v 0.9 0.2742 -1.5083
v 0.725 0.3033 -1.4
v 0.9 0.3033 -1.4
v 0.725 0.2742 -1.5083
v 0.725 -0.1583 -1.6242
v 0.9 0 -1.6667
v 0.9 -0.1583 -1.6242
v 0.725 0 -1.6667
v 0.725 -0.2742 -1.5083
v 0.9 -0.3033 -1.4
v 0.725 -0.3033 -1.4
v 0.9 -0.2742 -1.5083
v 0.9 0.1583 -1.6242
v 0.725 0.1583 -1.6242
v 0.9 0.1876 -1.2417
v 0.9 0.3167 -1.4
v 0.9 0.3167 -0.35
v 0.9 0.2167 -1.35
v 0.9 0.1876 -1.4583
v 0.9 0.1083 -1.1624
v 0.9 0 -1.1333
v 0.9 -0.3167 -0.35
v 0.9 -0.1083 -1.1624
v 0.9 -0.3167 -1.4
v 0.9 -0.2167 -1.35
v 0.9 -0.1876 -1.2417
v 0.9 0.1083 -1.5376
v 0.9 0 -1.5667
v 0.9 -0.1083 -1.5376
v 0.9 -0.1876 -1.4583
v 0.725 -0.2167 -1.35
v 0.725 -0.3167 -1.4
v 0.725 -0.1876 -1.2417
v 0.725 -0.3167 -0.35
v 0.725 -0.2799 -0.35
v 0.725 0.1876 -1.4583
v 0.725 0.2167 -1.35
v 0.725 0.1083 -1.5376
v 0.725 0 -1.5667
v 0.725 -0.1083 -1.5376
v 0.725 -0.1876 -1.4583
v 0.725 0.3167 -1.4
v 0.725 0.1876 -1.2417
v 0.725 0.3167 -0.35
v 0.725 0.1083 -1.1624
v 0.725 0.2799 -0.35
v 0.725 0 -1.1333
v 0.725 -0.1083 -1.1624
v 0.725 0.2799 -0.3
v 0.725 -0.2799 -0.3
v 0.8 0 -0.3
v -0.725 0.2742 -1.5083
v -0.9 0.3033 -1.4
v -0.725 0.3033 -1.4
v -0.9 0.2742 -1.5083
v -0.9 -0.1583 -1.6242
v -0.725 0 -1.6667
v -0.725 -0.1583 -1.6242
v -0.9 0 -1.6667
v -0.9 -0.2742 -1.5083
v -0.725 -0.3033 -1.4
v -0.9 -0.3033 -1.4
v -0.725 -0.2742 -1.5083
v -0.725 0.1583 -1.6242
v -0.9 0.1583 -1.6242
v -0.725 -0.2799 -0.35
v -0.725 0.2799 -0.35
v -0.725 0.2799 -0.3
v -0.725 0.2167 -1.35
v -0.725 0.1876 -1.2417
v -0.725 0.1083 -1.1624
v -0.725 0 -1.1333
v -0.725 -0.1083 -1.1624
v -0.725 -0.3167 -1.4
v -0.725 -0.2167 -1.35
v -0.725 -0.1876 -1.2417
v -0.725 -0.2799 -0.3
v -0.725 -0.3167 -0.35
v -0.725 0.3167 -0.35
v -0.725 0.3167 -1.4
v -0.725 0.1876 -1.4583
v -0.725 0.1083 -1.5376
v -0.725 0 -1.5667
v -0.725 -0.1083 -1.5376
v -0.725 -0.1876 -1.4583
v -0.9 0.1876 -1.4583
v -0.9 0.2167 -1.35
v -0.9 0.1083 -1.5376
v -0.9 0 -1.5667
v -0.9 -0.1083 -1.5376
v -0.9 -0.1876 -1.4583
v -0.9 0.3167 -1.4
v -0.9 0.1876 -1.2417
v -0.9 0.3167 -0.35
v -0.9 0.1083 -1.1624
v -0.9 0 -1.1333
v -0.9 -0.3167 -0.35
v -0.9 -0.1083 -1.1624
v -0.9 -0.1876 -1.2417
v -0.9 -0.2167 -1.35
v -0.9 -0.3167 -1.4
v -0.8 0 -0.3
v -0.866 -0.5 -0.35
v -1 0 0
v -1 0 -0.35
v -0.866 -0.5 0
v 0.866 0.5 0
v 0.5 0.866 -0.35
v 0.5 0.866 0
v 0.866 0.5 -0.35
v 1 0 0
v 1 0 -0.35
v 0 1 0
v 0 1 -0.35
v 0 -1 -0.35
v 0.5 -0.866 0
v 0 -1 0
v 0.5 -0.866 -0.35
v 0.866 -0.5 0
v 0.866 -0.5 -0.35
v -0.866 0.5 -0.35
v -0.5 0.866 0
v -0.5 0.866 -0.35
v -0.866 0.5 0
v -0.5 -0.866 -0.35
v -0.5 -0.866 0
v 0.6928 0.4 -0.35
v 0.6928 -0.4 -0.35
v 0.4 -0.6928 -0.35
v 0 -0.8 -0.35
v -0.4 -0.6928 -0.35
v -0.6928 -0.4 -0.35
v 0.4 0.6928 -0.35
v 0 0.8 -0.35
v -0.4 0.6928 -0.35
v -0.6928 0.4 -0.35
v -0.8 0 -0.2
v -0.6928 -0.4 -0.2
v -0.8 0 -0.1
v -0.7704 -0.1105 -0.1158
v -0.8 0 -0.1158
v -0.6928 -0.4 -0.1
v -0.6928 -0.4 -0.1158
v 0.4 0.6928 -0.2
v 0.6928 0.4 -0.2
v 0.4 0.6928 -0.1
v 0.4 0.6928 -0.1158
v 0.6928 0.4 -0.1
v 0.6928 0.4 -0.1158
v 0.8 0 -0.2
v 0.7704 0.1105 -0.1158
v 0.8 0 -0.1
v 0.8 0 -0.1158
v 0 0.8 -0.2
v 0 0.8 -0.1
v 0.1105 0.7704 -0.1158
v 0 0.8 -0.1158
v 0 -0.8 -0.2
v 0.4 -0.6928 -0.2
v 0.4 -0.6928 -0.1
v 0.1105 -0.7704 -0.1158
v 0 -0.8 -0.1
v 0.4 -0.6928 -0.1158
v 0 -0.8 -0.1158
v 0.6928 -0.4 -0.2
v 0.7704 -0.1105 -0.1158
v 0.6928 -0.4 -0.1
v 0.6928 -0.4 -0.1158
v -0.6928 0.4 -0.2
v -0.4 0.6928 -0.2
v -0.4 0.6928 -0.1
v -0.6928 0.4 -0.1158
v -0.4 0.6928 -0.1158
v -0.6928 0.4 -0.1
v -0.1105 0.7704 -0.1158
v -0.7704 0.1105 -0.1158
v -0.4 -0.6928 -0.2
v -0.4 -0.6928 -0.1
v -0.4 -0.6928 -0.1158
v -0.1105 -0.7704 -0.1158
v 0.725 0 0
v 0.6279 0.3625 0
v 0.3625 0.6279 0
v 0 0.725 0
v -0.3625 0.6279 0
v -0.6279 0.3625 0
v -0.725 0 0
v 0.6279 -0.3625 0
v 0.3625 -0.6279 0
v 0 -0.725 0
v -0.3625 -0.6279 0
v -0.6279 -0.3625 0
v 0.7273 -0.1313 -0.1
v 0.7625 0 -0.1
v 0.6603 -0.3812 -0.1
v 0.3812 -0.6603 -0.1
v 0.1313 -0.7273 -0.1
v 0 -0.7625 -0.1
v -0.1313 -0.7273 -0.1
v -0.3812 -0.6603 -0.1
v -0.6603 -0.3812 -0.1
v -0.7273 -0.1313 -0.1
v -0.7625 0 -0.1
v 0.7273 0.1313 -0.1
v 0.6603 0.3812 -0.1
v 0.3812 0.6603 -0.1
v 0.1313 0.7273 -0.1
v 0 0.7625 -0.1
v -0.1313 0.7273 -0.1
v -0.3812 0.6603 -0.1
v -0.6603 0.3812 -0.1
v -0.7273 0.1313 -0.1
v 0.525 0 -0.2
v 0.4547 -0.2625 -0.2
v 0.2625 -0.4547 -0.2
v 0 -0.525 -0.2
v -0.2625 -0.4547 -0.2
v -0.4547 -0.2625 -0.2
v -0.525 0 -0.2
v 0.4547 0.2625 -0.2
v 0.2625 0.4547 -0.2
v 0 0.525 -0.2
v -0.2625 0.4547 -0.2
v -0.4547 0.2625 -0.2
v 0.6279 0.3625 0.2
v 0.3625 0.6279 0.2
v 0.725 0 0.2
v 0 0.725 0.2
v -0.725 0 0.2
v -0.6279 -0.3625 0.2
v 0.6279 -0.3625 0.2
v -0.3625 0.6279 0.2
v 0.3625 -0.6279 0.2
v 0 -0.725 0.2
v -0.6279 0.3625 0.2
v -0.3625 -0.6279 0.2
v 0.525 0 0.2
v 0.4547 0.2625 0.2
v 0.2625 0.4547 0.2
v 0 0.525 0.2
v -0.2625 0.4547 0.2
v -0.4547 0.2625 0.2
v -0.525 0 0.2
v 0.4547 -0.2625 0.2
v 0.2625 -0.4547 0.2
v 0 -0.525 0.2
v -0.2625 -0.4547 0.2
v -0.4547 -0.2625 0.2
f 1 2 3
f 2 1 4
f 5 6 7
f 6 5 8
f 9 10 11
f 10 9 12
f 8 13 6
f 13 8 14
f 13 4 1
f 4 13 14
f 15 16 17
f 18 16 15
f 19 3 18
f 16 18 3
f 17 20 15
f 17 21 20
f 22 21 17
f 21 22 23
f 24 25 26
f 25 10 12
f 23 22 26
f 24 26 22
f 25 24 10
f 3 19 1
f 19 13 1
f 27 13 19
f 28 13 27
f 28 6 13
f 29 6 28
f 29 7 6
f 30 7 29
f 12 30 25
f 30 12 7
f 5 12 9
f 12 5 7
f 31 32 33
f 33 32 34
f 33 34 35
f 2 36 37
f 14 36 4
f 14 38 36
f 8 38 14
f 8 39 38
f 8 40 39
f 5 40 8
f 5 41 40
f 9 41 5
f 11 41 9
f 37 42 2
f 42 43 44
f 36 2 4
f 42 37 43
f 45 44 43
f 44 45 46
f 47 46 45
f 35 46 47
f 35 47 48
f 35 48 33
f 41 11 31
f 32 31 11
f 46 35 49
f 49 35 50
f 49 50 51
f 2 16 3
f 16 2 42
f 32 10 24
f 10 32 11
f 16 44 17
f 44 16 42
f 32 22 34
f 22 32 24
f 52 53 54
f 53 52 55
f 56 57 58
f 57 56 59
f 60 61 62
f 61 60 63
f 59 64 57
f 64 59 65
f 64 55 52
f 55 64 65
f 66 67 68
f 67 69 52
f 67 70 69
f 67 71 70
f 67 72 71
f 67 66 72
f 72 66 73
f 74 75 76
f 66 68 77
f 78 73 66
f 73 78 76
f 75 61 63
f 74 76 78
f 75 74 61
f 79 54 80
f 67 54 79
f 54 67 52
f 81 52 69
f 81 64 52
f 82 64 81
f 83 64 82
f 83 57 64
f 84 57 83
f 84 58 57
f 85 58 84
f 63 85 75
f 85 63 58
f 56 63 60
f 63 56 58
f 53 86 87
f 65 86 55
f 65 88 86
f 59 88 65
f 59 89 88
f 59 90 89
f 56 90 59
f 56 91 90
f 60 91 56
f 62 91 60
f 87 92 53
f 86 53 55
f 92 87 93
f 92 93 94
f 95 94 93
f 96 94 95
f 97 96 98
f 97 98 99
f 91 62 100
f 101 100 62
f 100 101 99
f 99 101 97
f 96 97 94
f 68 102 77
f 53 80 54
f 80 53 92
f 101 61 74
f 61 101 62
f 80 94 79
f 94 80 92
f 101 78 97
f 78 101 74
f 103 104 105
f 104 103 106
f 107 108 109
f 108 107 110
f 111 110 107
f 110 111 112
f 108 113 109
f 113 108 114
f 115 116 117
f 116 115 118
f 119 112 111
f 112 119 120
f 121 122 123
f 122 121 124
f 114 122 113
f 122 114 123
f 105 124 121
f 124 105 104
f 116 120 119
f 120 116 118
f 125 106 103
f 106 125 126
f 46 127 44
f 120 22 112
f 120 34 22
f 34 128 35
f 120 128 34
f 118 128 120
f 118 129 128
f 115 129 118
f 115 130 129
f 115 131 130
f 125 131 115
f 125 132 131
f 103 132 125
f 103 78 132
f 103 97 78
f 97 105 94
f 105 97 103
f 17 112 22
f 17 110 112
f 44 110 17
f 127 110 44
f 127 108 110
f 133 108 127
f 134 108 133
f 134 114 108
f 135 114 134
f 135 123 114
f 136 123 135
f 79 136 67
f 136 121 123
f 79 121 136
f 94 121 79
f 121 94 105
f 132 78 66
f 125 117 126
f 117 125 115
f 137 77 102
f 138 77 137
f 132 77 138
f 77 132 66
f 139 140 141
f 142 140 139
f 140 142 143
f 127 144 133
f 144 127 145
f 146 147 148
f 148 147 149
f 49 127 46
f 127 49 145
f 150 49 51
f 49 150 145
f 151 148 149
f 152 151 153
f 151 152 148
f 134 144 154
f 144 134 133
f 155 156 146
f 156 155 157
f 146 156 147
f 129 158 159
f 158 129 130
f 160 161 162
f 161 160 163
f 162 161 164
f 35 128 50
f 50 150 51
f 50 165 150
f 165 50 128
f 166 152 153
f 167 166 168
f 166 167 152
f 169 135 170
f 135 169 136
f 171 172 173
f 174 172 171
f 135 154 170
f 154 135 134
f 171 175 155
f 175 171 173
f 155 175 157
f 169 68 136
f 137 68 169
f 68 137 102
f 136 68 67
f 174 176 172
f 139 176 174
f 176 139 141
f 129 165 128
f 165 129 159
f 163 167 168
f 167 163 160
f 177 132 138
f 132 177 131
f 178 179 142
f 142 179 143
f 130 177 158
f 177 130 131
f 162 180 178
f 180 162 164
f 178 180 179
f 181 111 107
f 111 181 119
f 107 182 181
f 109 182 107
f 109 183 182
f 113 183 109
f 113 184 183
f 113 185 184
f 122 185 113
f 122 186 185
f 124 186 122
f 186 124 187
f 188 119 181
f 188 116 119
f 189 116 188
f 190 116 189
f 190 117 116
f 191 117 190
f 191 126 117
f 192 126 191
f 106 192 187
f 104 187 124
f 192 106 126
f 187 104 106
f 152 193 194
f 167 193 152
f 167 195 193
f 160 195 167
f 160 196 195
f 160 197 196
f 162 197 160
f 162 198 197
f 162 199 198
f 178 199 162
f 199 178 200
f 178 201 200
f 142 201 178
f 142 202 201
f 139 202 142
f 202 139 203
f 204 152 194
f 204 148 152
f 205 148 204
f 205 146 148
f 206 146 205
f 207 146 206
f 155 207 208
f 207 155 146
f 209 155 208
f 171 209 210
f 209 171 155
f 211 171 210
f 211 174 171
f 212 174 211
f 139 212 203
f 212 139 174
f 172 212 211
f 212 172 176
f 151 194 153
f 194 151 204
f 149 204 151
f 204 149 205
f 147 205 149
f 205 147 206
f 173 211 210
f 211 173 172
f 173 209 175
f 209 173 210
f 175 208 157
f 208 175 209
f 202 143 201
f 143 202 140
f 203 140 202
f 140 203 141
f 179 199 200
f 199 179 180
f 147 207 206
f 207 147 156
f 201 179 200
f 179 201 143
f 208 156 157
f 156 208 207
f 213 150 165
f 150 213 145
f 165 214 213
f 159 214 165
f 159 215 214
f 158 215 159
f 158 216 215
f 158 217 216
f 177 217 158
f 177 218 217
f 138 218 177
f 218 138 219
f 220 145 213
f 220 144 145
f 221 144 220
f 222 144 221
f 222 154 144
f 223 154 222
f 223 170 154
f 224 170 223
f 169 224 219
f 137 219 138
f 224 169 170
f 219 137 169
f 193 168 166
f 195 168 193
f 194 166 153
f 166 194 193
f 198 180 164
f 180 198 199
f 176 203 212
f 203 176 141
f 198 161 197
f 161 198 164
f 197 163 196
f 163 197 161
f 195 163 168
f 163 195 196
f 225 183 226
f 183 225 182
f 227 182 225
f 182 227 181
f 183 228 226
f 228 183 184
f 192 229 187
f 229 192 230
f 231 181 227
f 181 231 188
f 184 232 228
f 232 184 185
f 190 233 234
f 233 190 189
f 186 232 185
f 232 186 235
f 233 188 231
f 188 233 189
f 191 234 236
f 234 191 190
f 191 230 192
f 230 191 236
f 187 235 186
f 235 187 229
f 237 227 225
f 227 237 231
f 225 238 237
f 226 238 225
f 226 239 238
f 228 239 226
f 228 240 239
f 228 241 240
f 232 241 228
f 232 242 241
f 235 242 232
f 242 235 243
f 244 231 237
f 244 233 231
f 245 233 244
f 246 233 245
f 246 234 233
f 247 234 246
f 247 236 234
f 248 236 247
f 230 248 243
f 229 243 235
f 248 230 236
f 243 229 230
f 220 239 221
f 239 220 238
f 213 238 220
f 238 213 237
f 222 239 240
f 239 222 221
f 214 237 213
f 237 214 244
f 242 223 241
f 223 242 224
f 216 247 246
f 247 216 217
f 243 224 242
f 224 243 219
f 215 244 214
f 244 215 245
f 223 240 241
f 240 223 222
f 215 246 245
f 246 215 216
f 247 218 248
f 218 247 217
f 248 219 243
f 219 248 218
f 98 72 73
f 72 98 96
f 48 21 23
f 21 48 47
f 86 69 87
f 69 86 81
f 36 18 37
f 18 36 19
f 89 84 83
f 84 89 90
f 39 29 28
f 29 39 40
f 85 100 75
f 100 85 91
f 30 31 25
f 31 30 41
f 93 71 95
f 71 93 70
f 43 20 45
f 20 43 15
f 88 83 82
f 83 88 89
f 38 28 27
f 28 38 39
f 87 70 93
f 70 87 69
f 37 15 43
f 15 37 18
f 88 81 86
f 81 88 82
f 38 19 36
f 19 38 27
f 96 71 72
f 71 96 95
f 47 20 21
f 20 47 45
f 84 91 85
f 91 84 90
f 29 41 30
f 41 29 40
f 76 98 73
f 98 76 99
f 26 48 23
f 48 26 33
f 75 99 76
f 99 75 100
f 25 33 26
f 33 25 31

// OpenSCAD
tolerance=0.075;
hole_radius=0.05;
grid_hole_radius=0.05;
outer_radius=1;
thickness=0.2;
hole_attach_height=0.05;
attach_thickness=0.1;
bottom_rotation_height=1.625;
top_rotation_height=1.35;
next_hole_radius=0.05;
next_hole_attach_height=0.05;
next_inner=0.8;
max_turn=90.0;
min_turn=90.0;
hole_twist=90.0;

//parameters that don't have to be defined explicitly
eps = tolerance/100;
inner_radius = outer_radius - thickness;
axle_offset = attach_thickness;
bottom_joint_attach_radius = outer_radius - hole_attach_height - grid_hole_radius*2 - thickness;
fn = 12;
fnh = 6;

//solve for b = axle height
max_turn_b = outer_radius / tan((180 - max_turn)/2);
min_turn_b = outer_radius / tan((180 - min_turn)/2);
axle_radius = bottom_joint_attach_radius/3;

grid_hole_height = hole_radius*2 + hole_attach_height * 2;
bottom_joint_grid_clearance = bottom_rotation_height - (hole_attach_height*2 + hole_radius*2 + grid_hole_height + max_turn_b + attach_thickness);

module angled_cylinder(angle_deg_y, _h, _r, angle_deg_x = 0) {
    rotate([angle_deg_x, angle_deg_y, 0]) { // Rotate the cylinder 
            cylinder(h = _h, r = _r, center = true, $fn = fnh);
        }
}

module joint_top() {
    operating_height = hole_attach_height*2 + attach_thickness + hole_radius*2 + grid_hole_height + bottom_joint_grid_clearance + max_turn_b;
    
    top_attach_height = axle_offset + axle_radius + max_turn_b;
    cyl_height = top_rotation_height - max_turn_b;

    difference() {
        translate([0,0, operating_height]) 
        difference() {
            union() {
                translate([0,0,- axle_radius - axle_offset + top_attach_height/2]) 
                {
                    
                    //attach points
                    axle_attach_thickness = outer_radius - thickness/2 - bottom_joint_attach_radius - tolerance ;
                    
                    attach_distance = bottom_joint_attach_radius + axle_attach_thickness/2 + tolerance;

                    translate([attach_distance, 0, 0]) {
                        translate([0,0,-top_attach_height/2 + axle_radius + axle_offset])
                        rotate([0,90,0])
                        cylinder(h=axle_attach_thickness,r=axle_radius + axle_offset,center=true, $fn = fn);
                        translate([0,0,(axle_radius + axle_offset)/2])
                    cube([axle_attach_thickness, (axle_radius + axle_offset)*2, top_attach_height - axle_offset - axle_radius + attach_thickness],center=true);
                    }
                    
                    translate([-attach_distance, 0, 0]) {
                        translate([0,0,-top_attach_height/2 + axle_radius + axle_offset])
                        rotate([0,90,0])
                        cylinder(h=axle_attach_thickness,r=axle_radius + axle_offset,center=true, $fn = fn);
                        translate([0,0,(axle_radius + axle_offset)/2])
                    cube([axle_attach_thickness, (axle_radius + axle_offset)*2, top_attach_height - axle_offset - axle_radius + attach_thickness],center=true);
                    }  
                    
                    //outer cylinder
                    translate([0,0,top_attach_height/2]) {
                        difference() {
                            cylinder(h=cyl_height,r=outer_radius,$fn=fn);
                            translate([0,0,-eps/2])
                            cylinder(h=cyl_height + eps,r=inner_radius,$fn=fn);
                        }
                        
                        //enforce min turn
                        translate([0,0,-(max_turn_b - min_turn_b)])
                        difference() {
                            cylinder(h=max_turn_b - min_turn_b,r=outer_radius,$fn=fn);
                            
                            translate([-outer_radius,-outer_radius,-eps/2])
                            cube([outer_radius*2,outer_radius - axle_radius - axle_offset + eps/2,max_turn_b - min_turn_b + eps]);
                            
                            translate([0,0,-eps/2])
                            cylinder(h=max_turn_b - min_turn_b + eps,r=inner_radius,$fn=fn);
                       }
                    }       
                } 
                
                
                //attachment segment
                translate([0,0,cyl_height + max_turn_b])
                difference() {
                        union() {
                            //attachment for smaller cylinder
                            translate([0,0,-attach_thickness])
                            cylinder(h=attach_thickness, r=outer_radius, $fn=fn);
                            translate([0,0,-attach_thickness*2])
                            cylinder(h=attach_thickness*2, r1=outer_radius, r2=next_inner - tolerance - thickness, $fn=fn);
                            
                            //small cylinder
                            cylinder(h=next_hole_radius*2 + next_hole_attach_height * 2, r = next_inner - tolerance, $fn=fn);
                        }
                        
                        //shelling
                        translate([0,0, -attach_thickness*2 - eps/2])
                        cylinder(h=next_hole_radius*2 + next_hole_attach_height * 2 + attach_thickness*2 + eps, r = min(inner_radius, next_inner - tolerance - thickness), $fn=fn);
                        
                        //holes for screws
//                        translate([0,0,next_hole_attach_height + next_hole_radius]) {
//                            angled_cylinder(0, (next_inner + thickness + eps) * 2,  next_hole_radius, 90);
//                            angled_cylinder(90, (next_inner + thickness + eps) * 2, next_hole_radius, 0);
//                        }
                    }

            }
            
            //holes for string routing
//             translate([0,-inner_radius + tolerance,max_turn_b]) 
//            rotate([90,0,0])
//            {
//                cylinder(h=thickness + inner_radius + tolerance,r=grid_hole_radius,$fn=fn);
//                translate([0,hole_attach_height + grid_hole_radius*2,0])
//                cylinder(h=thickness + inner_radius + tolerance,r=grid_hole_radius,$fn=fn);
//
//            }
//
//            translate([0,outer_radius + tolerance,min_turn_b])
//            rotate([90,0,0])
//            {
//                cylinder(h=thickness + inner_radius + tolerance,r=grid_hole_radius,$fn=fn);
//                translate([0,hole_attach_height + grid_hole_radius*2,0])
//                cylinder(h=thickness + inner_radius + tolerance,r=grid_hole_radius,$fn=fn);
//
//            }
             

        }

        //axle hole
        translate([0,0,operating_height])
        rotate([0,90,0])
        cylinder(h=outer_radius*2,r=axle_radius,center=true,$fn=fn);
        
    }
}

translate([0,0,-(bottom_rotation_height + top_rotation_height)])
joint_top();
